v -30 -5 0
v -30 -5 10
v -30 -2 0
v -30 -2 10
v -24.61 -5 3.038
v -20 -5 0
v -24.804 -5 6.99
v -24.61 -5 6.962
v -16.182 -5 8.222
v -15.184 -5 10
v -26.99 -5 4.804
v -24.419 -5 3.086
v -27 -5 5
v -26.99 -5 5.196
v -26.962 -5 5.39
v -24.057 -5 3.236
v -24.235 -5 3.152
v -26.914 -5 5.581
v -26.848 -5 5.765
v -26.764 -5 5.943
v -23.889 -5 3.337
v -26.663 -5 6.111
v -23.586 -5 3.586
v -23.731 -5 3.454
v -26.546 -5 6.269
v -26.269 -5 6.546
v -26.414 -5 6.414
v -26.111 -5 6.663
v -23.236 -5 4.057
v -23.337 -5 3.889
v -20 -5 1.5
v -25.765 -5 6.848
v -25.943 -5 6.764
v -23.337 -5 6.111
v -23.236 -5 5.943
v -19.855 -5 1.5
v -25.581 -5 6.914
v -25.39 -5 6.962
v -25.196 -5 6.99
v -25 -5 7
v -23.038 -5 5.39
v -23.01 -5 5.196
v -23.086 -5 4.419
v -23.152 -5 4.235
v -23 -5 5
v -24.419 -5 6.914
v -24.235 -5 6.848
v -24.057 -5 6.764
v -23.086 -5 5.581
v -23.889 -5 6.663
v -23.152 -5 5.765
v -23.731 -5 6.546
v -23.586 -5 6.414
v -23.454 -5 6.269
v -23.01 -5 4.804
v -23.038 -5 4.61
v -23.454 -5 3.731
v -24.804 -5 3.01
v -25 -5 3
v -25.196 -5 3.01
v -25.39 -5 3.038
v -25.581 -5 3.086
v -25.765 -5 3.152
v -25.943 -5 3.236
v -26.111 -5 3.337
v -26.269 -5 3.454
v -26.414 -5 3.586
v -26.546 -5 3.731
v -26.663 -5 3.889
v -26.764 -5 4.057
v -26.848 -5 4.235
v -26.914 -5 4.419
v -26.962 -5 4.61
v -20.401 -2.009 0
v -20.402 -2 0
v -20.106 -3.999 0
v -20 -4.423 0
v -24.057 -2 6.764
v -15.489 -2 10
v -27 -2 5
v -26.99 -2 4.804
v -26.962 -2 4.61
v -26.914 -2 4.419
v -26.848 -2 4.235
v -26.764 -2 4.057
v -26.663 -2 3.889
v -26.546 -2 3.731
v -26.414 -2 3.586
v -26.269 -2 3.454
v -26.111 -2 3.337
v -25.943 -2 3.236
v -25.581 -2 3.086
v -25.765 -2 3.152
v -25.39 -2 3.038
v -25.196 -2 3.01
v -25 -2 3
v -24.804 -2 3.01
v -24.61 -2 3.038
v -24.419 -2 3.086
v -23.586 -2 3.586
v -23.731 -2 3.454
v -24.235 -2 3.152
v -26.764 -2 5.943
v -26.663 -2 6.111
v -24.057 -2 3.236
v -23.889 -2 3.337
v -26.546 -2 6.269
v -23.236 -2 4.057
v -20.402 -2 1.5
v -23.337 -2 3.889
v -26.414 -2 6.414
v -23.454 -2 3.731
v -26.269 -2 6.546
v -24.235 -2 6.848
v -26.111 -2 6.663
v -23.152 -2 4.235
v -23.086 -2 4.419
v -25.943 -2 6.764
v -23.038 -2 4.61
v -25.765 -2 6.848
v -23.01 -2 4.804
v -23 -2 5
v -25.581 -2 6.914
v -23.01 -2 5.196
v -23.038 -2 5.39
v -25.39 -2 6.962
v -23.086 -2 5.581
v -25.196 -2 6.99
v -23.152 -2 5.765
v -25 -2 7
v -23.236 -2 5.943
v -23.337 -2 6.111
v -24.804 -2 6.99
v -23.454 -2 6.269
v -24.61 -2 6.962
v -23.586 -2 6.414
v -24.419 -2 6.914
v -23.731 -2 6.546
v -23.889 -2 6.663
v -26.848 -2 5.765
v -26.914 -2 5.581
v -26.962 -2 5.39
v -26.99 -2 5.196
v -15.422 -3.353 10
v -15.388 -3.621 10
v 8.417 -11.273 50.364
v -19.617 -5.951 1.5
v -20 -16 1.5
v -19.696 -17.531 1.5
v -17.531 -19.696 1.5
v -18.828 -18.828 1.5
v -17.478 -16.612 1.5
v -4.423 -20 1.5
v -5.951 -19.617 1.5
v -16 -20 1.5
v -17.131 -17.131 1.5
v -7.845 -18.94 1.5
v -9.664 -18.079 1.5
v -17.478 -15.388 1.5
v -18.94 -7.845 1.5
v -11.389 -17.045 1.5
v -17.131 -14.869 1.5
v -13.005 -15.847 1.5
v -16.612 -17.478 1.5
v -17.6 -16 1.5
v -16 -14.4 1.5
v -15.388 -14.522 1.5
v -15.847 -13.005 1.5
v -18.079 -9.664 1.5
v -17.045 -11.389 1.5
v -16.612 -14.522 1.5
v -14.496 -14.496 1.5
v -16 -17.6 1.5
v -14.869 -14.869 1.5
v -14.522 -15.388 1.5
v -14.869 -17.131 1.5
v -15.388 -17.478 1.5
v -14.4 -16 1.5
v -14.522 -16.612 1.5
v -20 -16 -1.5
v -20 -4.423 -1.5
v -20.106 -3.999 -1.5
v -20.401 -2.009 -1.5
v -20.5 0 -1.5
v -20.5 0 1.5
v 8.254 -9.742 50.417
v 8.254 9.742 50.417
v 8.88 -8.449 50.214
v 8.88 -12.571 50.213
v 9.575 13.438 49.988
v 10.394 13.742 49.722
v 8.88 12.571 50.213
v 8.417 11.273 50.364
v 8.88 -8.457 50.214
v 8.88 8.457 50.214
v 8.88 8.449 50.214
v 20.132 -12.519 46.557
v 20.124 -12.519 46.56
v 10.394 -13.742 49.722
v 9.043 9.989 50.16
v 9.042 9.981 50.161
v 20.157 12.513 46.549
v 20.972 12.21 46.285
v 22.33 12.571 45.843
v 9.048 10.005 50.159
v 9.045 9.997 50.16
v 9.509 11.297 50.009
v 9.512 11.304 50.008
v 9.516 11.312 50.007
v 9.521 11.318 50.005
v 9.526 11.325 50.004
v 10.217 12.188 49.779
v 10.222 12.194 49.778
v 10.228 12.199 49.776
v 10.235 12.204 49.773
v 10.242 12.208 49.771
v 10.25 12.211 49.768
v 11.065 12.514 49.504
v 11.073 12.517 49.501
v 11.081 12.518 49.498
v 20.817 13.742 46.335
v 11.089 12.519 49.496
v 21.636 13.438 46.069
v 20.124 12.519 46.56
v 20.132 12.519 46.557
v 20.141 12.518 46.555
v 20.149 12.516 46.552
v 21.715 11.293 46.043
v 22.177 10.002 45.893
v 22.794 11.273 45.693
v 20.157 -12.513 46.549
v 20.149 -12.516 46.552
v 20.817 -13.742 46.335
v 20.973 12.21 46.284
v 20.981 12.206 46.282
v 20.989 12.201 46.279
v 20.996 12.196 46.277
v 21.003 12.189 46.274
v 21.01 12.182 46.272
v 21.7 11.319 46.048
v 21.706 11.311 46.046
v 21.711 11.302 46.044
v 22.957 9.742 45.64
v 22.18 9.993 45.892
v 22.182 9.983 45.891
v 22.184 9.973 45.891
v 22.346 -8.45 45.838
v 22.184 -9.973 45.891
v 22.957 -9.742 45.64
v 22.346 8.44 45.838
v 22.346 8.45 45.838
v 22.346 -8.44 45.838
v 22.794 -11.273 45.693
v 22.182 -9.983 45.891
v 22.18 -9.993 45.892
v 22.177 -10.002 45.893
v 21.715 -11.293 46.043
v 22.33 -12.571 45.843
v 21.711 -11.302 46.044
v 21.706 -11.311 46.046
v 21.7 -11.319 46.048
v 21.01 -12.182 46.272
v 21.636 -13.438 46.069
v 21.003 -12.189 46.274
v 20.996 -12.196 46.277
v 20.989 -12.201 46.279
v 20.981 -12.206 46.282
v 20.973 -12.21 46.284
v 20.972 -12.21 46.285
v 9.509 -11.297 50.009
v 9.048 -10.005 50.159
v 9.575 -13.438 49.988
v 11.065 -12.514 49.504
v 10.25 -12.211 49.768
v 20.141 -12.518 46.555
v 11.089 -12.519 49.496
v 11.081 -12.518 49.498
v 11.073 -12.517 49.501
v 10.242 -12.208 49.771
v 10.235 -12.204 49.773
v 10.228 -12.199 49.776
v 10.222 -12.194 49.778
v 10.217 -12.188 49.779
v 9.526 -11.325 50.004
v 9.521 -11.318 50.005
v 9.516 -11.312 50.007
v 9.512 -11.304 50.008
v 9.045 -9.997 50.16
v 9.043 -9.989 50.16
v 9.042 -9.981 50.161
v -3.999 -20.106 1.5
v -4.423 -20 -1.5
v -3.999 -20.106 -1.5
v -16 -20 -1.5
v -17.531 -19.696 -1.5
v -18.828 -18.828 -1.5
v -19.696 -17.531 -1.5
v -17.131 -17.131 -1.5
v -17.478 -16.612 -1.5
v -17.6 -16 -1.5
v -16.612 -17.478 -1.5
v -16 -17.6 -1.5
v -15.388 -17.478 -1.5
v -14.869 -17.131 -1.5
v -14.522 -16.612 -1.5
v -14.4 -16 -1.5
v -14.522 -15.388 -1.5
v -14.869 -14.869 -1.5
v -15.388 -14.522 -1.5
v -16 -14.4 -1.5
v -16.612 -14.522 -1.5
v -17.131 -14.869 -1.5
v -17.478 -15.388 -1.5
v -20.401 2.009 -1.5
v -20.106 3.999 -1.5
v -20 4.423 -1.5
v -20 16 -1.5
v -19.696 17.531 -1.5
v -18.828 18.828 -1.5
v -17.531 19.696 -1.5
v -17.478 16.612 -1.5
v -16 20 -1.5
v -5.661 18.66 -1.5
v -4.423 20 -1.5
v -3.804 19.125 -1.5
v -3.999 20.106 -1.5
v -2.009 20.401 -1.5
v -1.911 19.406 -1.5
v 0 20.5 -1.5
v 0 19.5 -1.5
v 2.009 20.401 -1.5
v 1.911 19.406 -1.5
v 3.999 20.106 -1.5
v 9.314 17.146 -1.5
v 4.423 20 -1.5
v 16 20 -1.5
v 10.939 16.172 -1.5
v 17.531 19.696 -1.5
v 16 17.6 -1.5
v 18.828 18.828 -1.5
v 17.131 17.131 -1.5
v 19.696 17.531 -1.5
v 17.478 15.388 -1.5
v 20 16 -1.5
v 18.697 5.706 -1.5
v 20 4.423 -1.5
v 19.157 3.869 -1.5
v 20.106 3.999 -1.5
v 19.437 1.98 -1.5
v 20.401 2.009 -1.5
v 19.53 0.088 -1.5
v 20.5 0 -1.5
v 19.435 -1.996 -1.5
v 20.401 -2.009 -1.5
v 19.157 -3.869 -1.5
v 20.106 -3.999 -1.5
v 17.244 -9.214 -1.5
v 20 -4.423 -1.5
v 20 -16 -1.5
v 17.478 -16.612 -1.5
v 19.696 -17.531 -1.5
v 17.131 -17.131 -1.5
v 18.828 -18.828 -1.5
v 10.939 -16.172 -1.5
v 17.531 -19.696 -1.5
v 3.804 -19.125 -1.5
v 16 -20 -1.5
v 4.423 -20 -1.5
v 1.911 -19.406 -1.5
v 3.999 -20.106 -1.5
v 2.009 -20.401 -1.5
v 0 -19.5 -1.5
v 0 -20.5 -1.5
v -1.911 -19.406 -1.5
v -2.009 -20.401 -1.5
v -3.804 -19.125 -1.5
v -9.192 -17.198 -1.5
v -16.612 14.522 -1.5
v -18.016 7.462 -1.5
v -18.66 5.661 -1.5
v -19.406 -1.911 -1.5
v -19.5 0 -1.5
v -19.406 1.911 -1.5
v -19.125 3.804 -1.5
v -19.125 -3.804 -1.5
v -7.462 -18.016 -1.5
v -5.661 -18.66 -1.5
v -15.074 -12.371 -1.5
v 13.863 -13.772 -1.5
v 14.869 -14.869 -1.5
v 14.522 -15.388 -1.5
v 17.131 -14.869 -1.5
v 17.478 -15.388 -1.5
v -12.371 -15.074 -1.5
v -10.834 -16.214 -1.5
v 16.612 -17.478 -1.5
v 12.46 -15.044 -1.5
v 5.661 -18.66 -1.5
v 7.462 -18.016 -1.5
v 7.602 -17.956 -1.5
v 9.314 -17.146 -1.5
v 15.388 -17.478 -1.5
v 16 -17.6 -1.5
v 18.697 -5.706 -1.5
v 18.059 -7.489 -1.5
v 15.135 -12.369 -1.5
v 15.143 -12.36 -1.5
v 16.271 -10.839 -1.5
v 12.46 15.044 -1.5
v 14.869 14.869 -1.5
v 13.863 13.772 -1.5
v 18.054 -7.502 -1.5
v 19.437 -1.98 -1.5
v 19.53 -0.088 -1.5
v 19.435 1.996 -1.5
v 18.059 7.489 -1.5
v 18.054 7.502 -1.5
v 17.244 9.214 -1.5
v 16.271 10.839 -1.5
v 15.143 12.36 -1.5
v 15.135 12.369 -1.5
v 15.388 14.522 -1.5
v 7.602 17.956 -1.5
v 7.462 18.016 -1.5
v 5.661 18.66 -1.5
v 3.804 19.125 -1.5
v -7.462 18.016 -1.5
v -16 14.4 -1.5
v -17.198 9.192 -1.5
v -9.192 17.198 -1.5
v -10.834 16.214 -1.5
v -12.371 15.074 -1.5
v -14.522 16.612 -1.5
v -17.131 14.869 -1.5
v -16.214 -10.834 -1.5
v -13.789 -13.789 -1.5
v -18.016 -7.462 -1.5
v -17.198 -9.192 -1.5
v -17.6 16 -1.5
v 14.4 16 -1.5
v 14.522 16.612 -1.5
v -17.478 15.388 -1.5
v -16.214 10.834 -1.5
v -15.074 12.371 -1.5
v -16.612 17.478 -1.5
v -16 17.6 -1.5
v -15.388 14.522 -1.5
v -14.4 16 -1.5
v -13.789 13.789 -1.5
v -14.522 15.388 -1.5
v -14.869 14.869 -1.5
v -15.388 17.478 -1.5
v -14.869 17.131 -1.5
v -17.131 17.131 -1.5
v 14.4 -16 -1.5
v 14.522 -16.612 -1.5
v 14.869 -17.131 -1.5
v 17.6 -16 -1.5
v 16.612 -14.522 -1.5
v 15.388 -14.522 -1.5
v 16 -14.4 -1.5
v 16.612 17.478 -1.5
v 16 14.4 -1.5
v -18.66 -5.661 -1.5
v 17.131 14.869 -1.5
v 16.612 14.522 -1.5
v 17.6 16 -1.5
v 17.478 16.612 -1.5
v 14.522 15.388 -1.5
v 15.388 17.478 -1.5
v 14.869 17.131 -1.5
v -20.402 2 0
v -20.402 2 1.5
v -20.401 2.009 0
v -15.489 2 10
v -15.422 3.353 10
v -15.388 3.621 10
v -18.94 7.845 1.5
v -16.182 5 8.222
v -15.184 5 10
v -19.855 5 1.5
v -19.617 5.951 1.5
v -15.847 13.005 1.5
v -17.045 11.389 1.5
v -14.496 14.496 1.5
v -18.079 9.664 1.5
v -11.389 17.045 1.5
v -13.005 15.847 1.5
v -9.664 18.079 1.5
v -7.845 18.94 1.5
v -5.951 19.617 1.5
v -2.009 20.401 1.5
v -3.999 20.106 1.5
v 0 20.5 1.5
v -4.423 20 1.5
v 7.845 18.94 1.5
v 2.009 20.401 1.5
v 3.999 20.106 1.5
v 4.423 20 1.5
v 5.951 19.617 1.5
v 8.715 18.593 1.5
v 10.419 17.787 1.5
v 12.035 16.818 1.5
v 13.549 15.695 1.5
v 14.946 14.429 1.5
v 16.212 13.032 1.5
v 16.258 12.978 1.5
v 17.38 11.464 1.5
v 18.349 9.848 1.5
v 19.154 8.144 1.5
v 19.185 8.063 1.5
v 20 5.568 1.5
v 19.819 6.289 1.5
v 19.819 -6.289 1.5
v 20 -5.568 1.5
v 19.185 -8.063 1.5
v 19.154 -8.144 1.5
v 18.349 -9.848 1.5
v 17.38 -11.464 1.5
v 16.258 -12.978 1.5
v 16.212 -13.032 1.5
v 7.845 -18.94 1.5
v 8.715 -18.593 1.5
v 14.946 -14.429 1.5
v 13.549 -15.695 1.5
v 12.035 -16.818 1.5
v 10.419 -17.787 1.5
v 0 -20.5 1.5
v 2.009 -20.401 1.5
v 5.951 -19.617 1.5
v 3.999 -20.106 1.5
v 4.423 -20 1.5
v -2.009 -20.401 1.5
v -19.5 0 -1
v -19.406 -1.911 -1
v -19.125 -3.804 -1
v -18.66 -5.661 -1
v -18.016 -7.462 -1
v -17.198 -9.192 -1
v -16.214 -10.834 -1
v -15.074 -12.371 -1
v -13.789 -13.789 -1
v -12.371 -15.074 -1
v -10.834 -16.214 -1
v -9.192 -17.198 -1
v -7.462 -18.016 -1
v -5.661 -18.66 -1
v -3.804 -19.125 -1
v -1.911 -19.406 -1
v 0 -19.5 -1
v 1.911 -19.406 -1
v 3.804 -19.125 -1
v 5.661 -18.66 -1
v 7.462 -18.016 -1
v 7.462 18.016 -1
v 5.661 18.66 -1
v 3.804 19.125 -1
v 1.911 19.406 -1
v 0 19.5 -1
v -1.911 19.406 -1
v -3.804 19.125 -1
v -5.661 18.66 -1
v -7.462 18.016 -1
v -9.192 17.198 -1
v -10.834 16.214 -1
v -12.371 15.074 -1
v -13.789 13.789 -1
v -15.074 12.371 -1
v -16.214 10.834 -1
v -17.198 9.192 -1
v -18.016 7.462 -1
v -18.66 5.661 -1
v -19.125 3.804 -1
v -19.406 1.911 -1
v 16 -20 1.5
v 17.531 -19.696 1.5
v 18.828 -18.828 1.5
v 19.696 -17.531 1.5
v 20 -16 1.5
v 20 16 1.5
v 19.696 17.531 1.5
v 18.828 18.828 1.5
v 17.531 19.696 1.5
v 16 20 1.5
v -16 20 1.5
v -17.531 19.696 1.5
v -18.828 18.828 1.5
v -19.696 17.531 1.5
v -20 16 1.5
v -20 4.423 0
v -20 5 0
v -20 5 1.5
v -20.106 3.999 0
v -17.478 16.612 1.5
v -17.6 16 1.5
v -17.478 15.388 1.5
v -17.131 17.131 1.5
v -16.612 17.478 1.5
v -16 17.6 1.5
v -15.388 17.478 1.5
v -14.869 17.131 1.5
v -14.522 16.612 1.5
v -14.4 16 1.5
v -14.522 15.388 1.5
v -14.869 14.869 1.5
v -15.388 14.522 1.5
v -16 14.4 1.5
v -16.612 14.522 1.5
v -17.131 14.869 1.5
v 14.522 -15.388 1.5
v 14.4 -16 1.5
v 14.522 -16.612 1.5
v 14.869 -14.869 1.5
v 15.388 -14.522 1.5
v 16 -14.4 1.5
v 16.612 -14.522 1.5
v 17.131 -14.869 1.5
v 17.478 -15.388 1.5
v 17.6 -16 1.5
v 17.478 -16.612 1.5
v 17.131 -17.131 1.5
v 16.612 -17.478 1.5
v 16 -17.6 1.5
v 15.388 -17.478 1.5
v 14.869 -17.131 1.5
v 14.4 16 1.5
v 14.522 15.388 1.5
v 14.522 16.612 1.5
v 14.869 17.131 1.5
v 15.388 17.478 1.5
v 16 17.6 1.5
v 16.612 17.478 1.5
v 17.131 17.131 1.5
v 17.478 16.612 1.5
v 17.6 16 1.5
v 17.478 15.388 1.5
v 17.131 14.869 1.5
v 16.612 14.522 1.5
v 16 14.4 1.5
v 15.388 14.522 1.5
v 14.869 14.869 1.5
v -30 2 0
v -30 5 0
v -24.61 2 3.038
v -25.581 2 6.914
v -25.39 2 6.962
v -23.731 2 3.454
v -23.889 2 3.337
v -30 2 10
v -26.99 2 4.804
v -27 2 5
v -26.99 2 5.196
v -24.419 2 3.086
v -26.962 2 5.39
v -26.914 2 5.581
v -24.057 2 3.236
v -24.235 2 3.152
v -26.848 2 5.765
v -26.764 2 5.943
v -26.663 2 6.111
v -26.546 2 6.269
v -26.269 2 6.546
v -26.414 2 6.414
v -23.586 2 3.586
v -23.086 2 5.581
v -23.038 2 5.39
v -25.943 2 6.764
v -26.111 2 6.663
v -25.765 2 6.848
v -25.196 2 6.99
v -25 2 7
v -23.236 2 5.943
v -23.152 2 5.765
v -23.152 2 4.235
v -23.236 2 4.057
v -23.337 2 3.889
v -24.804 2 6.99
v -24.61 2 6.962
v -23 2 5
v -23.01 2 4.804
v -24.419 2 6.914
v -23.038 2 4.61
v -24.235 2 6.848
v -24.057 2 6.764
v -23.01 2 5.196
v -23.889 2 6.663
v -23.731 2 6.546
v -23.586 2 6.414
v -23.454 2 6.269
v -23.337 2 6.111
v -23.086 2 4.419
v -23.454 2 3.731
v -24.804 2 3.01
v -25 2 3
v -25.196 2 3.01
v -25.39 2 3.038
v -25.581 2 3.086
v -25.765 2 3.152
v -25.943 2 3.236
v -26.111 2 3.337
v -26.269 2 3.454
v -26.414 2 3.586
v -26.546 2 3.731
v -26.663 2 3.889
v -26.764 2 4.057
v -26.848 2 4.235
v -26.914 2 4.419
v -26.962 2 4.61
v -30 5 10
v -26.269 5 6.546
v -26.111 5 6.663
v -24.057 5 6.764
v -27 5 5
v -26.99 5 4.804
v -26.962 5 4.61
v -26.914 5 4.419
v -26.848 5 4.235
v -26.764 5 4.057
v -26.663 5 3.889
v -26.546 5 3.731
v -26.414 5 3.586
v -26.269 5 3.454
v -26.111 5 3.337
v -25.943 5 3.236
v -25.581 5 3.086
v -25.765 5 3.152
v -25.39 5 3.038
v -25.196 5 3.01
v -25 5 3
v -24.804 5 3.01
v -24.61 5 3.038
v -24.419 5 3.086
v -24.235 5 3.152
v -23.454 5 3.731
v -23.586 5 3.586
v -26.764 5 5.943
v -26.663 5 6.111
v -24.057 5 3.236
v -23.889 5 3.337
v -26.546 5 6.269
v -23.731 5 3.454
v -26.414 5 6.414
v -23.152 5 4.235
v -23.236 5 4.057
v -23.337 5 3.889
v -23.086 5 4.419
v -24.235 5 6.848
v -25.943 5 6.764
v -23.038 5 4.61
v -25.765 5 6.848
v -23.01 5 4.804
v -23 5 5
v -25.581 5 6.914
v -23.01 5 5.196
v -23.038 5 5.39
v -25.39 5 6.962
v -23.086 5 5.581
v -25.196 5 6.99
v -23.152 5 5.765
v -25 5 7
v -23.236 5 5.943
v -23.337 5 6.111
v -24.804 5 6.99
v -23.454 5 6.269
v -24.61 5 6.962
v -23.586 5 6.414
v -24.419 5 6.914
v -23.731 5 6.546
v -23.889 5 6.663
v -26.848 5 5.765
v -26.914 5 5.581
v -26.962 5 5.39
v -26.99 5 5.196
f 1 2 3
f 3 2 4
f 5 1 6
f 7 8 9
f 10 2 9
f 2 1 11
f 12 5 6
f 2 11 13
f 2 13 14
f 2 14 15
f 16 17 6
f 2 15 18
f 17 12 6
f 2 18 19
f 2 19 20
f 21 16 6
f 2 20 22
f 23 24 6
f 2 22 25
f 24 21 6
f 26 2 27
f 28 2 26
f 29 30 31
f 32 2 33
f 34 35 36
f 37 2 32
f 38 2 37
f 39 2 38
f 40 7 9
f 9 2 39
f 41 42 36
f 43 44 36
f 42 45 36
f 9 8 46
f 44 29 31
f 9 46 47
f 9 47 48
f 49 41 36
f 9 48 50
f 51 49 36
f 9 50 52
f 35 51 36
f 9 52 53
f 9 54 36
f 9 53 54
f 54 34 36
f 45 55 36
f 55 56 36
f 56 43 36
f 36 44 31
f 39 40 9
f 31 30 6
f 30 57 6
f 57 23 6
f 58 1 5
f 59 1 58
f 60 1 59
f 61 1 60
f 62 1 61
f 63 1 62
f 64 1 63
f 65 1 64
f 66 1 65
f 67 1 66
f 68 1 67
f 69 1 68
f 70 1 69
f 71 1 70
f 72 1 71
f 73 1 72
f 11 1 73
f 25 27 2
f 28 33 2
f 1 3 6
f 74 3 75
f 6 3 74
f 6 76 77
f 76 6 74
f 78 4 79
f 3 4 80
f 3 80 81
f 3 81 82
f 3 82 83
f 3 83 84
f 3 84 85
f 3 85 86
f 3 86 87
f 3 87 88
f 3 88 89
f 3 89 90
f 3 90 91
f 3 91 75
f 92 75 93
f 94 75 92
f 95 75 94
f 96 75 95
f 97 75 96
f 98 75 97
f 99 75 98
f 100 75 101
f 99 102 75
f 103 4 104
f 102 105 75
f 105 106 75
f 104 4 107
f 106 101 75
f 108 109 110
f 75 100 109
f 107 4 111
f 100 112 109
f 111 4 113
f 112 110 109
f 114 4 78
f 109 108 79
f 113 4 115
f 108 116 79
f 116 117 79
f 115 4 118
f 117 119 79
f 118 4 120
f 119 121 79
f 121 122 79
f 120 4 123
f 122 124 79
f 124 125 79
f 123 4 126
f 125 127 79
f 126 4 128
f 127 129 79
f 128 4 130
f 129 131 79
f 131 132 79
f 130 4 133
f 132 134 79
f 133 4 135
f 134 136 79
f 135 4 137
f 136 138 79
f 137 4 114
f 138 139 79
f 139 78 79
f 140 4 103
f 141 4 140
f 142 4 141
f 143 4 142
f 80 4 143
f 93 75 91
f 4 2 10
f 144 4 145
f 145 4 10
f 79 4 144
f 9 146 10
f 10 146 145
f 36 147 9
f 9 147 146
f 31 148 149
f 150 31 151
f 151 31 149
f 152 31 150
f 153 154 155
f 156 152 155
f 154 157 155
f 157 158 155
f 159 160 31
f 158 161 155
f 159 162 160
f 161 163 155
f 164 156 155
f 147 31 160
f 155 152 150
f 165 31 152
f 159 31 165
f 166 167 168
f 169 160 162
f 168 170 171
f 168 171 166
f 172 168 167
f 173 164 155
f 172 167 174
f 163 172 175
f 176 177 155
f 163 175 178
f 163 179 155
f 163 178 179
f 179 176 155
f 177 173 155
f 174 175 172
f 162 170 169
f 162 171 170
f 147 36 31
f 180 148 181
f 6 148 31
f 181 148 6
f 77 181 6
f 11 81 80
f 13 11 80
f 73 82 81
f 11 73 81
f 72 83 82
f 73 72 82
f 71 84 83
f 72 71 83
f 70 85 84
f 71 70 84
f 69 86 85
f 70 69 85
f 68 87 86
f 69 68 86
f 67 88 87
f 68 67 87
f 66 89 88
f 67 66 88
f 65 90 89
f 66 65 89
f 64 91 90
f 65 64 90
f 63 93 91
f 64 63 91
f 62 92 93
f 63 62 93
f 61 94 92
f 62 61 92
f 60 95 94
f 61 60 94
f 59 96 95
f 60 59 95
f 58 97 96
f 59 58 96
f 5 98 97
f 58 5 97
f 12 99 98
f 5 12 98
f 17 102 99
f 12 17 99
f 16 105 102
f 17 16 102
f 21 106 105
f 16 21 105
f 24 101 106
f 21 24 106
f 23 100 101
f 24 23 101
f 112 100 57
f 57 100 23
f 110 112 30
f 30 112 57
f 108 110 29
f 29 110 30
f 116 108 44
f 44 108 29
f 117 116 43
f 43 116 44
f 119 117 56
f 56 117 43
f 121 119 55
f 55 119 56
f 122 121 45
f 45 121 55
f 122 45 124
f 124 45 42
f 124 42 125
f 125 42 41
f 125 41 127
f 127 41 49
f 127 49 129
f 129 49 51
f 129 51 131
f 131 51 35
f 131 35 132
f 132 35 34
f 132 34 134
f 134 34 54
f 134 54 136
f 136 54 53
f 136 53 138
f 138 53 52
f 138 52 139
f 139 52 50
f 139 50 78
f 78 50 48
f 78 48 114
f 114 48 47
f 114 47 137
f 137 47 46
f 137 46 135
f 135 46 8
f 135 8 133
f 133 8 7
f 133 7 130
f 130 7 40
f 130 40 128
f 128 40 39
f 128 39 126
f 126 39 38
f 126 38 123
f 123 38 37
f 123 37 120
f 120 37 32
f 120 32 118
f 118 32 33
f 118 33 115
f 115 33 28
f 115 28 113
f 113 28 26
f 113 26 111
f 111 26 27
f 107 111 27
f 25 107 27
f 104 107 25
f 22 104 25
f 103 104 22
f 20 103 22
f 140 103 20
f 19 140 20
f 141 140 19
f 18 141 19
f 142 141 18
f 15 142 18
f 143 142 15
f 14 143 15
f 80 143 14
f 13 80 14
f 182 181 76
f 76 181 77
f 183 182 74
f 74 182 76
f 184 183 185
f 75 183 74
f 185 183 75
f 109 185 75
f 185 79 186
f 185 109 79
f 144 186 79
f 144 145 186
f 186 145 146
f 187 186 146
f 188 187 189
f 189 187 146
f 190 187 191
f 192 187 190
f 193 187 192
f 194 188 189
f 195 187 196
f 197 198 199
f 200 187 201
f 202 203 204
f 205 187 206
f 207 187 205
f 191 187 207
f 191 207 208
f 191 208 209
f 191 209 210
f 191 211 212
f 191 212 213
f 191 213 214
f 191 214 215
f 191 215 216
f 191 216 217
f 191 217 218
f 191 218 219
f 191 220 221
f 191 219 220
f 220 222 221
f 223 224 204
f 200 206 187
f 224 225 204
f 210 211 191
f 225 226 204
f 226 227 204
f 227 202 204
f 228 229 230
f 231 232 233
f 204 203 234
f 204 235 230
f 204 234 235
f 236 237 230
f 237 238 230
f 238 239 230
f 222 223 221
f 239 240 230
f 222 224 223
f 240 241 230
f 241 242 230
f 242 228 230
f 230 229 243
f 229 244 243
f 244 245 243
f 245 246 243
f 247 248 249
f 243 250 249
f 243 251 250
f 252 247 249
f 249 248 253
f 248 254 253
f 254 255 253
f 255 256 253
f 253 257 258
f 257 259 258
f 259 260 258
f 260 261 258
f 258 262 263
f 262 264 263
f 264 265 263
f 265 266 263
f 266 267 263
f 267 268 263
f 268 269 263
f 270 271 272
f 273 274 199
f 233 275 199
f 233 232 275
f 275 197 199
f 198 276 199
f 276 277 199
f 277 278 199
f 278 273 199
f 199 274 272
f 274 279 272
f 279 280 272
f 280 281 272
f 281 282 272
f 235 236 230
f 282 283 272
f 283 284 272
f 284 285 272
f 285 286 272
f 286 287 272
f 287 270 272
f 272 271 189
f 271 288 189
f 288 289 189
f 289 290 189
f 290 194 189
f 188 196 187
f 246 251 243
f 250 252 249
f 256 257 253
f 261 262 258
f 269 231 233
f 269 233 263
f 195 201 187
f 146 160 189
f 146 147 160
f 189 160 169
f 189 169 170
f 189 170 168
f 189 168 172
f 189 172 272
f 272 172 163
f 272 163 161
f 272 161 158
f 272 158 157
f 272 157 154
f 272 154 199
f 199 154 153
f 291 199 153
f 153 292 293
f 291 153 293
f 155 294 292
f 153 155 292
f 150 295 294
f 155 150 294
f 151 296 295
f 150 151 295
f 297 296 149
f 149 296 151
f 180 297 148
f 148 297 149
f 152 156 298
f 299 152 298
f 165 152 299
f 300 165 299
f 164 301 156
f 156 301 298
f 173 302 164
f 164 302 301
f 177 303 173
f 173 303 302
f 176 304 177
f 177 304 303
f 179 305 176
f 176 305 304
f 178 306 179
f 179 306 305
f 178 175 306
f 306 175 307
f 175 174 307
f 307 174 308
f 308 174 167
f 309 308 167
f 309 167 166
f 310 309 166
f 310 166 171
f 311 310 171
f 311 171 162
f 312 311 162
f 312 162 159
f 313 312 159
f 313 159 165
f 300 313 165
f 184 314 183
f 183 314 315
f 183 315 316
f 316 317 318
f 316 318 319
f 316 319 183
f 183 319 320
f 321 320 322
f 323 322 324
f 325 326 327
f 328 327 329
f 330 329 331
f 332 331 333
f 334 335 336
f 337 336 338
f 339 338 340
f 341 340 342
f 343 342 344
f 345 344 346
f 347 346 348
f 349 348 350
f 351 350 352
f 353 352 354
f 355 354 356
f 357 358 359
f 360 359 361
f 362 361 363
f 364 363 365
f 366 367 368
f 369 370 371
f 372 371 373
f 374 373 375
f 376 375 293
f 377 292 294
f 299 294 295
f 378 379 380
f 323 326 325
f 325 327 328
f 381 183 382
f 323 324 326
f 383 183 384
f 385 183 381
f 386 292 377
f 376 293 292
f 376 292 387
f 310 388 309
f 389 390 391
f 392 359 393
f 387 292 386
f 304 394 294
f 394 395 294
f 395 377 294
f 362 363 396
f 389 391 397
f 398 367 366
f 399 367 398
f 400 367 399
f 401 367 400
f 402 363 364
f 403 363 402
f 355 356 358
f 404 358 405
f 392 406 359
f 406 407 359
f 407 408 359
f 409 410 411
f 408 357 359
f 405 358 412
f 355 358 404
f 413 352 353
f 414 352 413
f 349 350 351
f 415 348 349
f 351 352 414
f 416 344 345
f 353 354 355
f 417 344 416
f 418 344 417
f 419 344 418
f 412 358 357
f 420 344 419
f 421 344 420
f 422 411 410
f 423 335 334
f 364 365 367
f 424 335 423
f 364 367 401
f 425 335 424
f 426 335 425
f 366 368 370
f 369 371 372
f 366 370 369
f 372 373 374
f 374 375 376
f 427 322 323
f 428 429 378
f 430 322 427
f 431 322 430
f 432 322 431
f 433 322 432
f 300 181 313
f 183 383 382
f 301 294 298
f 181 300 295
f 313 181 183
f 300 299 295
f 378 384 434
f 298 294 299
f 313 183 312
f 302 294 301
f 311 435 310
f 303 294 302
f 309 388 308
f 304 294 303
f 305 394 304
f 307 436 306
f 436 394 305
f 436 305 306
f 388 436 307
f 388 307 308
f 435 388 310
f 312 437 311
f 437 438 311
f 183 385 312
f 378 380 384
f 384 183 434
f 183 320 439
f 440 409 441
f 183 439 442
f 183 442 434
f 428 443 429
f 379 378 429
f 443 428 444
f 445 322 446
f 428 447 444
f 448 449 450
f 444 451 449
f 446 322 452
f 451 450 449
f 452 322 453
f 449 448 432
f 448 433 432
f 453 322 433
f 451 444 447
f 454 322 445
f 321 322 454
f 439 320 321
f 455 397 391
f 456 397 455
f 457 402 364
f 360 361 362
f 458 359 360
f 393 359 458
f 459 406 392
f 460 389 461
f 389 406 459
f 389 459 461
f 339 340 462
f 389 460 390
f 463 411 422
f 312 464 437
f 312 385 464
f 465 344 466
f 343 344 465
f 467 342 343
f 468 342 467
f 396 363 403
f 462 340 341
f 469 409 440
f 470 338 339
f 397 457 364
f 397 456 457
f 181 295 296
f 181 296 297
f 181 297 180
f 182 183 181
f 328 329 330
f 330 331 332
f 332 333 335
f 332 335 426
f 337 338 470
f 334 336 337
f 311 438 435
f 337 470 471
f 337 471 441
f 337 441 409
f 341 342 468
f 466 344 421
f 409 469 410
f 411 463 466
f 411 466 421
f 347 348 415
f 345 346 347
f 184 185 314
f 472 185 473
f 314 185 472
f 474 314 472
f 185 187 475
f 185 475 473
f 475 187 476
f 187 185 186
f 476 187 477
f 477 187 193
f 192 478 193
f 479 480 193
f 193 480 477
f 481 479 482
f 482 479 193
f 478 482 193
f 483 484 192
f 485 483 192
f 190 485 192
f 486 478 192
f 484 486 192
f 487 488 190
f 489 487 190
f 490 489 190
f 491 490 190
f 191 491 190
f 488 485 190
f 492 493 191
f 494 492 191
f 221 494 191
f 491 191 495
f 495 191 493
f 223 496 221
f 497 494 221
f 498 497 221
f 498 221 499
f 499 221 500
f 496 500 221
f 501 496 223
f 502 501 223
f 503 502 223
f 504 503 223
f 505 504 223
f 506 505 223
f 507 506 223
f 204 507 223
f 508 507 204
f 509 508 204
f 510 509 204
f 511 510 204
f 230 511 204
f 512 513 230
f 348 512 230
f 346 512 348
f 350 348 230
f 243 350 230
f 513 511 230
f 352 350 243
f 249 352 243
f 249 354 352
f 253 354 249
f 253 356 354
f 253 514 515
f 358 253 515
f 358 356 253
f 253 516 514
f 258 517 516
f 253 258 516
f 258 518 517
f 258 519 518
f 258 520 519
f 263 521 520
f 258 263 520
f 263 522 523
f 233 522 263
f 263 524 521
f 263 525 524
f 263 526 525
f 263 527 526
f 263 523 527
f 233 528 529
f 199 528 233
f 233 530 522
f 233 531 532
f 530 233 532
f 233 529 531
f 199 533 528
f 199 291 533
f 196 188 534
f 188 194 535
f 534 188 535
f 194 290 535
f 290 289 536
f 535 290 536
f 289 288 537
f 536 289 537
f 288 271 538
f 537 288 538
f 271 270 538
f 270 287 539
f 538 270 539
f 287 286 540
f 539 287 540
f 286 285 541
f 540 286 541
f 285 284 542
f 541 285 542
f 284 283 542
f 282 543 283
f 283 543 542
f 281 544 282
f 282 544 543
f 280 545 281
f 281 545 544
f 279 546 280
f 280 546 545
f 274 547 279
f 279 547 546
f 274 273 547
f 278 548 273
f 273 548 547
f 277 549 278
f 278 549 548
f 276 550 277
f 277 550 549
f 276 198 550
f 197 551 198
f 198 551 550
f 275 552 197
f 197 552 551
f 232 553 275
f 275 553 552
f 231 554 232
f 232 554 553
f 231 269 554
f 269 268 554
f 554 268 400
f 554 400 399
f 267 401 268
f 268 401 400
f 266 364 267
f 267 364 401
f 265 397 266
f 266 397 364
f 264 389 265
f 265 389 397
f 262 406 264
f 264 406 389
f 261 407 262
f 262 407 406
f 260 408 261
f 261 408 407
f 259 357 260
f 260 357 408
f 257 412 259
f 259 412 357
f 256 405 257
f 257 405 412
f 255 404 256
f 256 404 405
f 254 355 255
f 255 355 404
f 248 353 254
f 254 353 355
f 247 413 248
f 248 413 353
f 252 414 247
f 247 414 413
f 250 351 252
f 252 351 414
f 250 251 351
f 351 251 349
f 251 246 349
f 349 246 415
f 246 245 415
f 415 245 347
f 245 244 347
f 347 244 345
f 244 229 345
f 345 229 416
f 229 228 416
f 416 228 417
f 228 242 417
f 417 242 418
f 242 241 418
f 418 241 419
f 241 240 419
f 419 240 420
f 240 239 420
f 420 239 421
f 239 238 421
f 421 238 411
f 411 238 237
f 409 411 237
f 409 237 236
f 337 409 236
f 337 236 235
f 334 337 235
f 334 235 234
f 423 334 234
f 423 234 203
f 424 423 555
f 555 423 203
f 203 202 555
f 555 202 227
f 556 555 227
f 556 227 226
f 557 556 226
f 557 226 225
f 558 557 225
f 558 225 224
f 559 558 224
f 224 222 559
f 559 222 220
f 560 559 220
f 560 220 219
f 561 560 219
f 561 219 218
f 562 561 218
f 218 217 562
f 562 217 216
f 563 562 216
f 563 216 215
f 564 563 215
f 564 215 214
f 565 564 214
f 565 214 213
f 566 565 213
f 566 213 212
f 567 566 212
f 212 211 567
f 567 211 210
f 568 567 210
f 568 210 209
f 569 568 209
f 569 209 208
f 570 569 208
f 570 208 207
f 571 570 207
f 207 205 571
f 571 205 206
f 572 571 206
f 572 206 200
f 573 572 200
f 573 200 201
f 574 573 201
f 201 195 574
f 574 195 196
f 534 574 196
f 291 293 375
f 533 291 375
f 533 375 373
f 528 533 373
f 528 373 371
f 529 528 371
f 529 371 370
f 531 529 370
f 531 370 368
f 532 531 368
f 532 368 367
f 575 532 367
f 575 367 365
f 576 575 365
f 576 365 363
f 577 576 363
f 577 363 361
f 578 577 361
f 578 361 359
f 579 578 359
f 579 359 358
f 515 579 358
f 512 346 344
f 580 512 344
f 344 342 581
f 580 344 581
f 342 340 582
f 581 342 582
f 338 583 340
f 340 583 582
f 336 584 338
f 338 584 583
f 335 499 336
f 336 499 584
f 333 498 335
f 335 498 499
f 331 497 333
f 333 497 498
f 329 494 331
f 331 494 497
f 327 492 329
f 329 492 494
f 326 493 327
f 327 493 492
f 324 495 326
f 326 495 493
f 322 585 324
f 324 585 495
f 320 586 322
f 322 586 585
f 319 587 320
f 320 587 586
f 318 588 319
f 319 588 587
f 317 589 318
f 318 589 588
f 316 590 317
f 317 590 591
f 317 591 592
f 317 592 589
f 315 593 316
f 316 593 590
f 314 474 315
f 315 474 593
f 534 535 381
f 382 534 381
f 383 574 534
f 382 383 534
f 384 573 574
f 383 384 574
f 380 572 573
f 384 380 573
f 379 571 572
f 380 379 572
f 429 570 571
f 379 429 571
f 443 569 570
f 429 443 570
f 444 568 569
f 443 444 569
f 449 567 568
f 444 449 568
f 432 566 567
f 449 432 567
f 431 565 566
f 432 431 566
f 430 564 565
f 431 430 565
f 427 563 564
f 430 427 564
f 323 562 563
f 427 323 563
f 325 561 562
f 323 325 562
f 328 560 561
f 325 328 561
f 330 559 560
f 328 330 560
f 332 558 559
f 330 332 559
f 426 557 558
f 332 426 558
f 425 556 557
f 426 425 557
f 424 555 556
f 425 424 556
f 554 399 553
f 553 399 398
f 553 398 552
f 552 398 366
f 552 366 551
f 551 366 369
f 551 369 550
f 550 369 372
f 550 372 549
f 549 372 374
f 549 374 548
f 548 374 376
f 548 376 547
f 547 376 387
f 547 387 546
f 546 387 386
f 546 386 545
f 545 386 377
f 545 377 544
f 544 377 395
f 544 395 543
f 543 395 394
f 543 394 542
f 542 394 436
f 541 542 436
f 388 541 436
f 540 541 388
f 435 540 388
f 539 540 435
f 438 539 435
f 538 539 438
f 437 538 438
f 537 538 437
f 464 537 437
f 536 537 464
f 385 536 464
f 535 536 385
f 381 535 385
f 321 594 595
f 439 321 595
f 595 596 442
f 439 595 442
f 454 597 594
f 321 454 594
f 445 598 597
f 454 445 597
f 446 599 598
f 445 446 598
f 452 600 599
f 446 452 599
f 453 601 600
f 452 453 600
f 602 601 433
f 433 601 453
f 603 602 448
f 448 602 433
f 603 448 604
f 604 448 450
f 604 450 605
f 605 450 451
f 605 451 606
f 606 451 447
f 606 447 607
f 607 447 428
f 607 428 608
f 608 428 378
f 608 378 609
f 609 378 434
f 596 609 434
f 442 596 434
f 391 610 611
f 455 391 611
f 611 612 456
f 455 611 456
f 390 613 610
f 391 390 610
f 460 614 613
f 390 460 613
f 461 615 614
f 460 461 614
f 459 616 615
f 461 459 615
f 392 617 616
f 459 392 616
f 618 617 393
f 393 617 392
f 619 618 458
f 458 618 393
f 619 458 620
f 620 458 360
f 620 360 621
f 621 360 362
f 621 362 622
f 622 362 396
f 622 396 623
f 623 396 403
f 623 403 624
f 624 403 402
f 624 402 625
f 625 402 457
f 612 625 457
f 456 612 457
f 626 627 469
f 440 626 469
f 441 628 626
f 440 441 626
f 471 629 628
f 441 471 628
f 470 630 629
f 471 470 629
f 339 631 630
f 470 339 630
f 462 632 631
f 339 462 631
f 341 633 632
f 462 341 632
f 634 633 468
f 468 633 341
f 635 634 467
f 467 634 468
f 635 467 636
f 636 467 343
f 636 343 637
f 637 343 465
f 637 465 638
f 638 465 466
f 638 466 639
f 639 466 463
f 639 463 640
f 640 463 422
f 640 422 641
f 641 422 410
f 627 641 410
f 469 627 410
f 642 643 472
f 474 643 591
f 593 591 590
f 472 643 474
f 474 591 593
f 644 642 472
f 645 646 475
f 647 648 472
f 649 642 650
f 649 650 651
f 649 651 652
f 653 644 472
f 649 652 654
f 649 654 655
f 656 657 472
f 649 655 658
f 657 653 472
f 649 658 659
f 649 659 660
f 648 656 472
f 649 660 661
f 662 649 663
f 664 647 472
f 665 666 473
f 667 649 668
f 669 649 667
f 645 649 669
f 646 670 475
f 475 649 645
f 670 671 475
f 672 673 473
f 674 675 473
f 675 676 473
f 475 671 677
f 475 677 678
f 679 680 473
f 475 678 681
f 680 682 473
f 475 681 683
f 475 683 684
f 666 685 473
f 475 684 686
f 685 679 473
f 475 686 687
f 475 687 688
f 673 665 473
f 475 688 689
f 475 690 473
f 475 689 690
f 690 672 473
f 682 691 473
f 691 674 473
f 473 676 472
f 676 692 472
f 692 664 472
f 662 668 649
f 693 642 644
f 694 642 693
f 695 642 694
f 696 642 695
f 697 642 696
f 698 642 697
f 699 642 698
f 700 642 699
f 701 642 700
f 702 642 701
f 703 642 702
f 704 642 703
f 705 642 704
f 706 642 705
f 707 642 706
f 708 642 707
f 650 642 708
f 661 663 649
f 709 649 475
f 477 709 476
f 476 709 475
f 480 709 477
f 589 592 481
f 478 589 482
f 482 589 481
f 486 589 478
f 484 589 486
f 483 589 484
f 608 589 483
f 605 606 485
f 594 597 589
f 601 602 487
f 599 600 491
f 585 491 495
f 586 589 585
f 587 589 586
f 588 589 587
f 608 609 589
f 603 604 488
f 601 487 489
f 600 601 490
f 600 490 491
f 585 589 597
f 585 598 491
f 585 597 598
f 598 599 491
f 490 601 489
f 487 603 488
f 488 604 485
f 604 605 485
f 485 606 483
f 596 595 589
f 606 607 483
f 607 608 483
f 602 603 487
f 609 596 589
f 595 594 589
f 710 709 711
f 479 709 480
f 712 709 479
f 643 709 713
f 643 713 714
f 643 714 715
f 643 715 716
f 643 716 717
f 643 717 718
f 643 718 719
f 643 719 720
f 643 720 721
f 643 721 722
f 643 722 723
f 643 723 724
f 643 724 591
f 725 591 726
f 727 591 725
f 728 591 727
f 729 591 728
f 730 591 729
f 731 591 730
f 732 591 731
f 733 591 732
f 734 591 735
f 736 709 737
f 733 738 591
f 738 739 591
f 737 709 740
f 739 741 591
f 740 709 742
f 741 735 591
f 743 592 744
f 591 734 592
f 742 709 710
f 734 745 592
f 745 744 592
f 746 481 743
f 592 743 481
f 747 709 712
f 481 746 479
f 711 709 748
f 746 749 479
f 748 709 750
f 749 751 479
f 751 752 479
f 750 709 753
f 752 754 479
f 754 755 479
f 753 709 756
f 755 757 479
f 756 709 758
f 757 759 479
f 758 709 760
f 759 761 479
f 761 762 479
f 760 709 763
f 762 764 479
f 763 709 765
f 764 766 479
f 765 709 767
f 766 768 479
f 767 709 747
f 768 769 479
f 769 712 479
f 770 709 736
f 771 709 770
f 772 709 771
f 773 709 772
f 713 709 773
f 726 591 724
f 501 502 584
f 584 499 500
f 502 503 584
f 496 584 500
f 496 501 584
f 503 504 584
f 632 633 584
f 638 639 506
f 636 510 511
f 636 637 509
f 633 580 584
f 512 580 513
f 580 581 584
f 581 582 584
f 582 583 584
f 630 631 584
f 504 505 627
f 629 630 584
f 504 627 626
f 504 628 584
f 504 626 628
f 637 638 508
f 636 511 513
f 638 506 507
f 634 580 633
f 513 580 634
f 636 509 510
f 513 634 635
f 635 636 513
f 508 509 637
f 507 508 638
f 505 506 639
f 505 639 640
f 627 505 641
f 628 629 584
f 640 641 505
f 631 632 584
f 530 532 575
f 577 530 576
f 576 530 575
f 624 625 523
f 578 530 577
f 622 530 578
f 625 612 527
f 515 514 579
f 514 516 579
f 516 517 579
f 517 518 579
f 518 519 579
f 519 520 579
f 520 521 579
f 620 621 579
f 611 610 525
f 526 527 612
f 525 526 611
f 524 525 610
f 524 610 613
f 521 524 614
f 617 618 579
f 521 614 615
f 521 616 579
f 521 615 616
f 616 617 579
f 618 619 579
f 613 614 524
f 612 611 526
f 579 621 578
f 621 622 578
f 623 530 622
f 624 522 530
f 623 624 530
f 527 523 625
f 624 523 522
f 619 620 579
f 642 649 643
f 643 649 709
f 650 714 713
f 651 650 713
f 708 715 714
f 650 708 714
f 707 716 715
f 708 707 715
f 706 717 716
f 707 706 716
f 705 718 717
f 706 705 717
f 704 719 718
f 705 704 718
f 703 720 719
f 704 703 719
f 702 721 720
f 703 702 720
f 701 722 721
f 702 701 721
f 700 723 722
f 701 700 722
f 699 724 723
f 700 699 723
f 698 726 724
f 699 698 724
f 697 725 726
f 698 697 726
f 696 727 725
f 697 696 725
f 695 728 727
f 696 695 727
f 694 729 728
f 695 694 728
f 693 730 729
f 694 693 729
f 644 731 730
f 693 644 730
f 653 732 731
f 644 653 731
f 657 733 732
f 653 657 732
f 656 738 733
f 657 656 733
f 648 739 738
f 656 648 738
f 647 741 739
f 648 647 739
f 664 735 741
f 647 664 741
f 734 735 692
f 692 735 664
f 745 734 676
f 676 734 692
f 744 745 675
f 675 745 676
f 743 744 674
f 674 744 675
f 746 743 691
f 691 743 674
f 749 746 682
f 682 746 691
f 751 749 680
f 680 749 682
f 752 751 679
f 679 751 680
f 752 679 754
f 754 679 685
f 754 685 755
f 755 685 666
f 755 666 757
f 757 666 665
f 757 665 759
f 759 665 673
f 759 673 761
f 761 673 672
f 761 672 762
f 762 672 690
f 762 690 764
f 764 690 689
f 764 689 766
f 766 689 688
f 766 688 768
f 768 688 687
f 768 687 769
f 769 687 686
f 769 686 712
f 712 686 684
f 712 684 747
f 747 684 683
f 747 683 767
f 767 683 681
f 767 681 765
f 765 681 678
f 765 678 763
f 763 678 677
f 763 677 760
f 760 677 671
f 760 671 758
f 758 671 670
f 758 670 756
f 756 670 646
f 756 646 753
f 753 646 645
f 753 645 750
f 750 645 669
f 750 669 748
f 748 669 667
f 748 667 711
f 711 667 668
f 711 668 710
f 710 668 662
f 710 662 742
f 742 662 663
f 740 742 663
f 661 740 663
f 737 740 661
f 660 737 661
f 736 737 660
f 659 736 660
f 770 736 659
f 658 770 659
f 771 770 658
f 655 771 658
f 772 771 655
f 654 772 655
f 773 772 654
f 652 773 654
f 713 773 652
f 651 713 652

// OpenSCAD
nozzle_edges = 4;
nozzle_edgeradius = 3;
nozzle_edgerotate = true;
nozzle_length = 50;
nozzle_dillation = 24;
nozzle_wall = 1;
nozzle_scale = 0.75;
nozzle_tilt = 18;

mntholes_numberof = 4;
mntholes_angles = [ 90, 270, 0, 180 ];

$fn = 64;

module nozzle_shape( r, h )
{
	if ( nozzle_edges < 20 && nozzle_edgeradius > 0 )
		for ( a = [0:nozzle_edges] )
			rotate( [ 0, 0, 360/nozzle_edges * a ] )
				translate( [ r- nozzle_edgeradius, 0, 0 ] )
					cylinder( r = nozzle_edgeradius, h = h, center = true, $fn = 16 );
	else
		cylinder( r = r, h = h, center = true, $fn = nozzle_edges );
}

difference(){
	translate( [ -30, 2, 0 ] )
		cube([15,3,10]);
	flow();
	translate([ -25, 0,5 ])
	rotate([90,0,0])
		cylinder(r=2,h=20, center =true);
}

difference(){
	translate( [ -30, -5, 0 ] )
		cube([15,3,10]);
	flow();
	translate([ -25, 0,5 ])
	rotate([90,0,0])
		cylinder(r=2,h=20, center =true);
}

difference()
{
	union()
	{

		for ( a = [1:mntholes_numberof] )
			rotate( [ 0, 0, mntholes_angles[a-1] ] )
			{
				translate( [ 10, 8, 0 ] )
					cube( [ 20, 16, 3 ], center = true );
				translate( [ 8, 10, 0 ] )
					cube( [ 16, 20, 3 ], center = true );
				translate( [ 16, 16, 0 ] )
					cylinder( r = 4, h = 3, center = true, $fn = 16 );
			}

		hull()
		{
			cylinder( r = 20.5, h = 3, center = true );
			rotate( [ 0, nozzle_tilt, 0 ] )
			translate( [ 0, 0, nozzle_length ] )
				scale( [ nozzle_scale, 1 / nozzle_scale, 1 ] )
					rotate( [ 0, 0, nozzle_edgerotate ? 180 / nozzle_edges : 0 ] )
						nozzle_shape( r = nozzle_dillation/2+nozzle_wall*max(nozzle_scale,1/nozzle_scale), h = 1 );
		}
	}

	for ( a = [1:mntholes_numberof] )
		rotate( [ 0, 0, mntholes_angles[a-1] ] )
			translate( [ 16, 16, 0 ] )
				cylinder( r = 1.6, h = 5, center = true, $fn = 16 );

	flow();
}

module flow() {
	hull()
	{
		translate( [ 0, 0, -1.5 ] )
		cylinder( r = 20.5 - nozzle_wall, h = 1, center = true );
			rotate( [ 0, nozzle_tilt, 0 ] )
		translate( [ 0, 0, nozzle_length ] )
			//cylinder( r = nozzle_dillation * cos( 180 / nozzle_edges )/2, h = 1.5, center = true );
			scale( [ nozzle_scale, 1 / nozzle_scale, 1 ] )
				rotate( [ 0, 0, nozzle_edgerotate ? 180 / nozzle_edges : 0 ] )
					nozzle_shape( r = nozzle_dillation/2, h = 1.5 );
	}
}
